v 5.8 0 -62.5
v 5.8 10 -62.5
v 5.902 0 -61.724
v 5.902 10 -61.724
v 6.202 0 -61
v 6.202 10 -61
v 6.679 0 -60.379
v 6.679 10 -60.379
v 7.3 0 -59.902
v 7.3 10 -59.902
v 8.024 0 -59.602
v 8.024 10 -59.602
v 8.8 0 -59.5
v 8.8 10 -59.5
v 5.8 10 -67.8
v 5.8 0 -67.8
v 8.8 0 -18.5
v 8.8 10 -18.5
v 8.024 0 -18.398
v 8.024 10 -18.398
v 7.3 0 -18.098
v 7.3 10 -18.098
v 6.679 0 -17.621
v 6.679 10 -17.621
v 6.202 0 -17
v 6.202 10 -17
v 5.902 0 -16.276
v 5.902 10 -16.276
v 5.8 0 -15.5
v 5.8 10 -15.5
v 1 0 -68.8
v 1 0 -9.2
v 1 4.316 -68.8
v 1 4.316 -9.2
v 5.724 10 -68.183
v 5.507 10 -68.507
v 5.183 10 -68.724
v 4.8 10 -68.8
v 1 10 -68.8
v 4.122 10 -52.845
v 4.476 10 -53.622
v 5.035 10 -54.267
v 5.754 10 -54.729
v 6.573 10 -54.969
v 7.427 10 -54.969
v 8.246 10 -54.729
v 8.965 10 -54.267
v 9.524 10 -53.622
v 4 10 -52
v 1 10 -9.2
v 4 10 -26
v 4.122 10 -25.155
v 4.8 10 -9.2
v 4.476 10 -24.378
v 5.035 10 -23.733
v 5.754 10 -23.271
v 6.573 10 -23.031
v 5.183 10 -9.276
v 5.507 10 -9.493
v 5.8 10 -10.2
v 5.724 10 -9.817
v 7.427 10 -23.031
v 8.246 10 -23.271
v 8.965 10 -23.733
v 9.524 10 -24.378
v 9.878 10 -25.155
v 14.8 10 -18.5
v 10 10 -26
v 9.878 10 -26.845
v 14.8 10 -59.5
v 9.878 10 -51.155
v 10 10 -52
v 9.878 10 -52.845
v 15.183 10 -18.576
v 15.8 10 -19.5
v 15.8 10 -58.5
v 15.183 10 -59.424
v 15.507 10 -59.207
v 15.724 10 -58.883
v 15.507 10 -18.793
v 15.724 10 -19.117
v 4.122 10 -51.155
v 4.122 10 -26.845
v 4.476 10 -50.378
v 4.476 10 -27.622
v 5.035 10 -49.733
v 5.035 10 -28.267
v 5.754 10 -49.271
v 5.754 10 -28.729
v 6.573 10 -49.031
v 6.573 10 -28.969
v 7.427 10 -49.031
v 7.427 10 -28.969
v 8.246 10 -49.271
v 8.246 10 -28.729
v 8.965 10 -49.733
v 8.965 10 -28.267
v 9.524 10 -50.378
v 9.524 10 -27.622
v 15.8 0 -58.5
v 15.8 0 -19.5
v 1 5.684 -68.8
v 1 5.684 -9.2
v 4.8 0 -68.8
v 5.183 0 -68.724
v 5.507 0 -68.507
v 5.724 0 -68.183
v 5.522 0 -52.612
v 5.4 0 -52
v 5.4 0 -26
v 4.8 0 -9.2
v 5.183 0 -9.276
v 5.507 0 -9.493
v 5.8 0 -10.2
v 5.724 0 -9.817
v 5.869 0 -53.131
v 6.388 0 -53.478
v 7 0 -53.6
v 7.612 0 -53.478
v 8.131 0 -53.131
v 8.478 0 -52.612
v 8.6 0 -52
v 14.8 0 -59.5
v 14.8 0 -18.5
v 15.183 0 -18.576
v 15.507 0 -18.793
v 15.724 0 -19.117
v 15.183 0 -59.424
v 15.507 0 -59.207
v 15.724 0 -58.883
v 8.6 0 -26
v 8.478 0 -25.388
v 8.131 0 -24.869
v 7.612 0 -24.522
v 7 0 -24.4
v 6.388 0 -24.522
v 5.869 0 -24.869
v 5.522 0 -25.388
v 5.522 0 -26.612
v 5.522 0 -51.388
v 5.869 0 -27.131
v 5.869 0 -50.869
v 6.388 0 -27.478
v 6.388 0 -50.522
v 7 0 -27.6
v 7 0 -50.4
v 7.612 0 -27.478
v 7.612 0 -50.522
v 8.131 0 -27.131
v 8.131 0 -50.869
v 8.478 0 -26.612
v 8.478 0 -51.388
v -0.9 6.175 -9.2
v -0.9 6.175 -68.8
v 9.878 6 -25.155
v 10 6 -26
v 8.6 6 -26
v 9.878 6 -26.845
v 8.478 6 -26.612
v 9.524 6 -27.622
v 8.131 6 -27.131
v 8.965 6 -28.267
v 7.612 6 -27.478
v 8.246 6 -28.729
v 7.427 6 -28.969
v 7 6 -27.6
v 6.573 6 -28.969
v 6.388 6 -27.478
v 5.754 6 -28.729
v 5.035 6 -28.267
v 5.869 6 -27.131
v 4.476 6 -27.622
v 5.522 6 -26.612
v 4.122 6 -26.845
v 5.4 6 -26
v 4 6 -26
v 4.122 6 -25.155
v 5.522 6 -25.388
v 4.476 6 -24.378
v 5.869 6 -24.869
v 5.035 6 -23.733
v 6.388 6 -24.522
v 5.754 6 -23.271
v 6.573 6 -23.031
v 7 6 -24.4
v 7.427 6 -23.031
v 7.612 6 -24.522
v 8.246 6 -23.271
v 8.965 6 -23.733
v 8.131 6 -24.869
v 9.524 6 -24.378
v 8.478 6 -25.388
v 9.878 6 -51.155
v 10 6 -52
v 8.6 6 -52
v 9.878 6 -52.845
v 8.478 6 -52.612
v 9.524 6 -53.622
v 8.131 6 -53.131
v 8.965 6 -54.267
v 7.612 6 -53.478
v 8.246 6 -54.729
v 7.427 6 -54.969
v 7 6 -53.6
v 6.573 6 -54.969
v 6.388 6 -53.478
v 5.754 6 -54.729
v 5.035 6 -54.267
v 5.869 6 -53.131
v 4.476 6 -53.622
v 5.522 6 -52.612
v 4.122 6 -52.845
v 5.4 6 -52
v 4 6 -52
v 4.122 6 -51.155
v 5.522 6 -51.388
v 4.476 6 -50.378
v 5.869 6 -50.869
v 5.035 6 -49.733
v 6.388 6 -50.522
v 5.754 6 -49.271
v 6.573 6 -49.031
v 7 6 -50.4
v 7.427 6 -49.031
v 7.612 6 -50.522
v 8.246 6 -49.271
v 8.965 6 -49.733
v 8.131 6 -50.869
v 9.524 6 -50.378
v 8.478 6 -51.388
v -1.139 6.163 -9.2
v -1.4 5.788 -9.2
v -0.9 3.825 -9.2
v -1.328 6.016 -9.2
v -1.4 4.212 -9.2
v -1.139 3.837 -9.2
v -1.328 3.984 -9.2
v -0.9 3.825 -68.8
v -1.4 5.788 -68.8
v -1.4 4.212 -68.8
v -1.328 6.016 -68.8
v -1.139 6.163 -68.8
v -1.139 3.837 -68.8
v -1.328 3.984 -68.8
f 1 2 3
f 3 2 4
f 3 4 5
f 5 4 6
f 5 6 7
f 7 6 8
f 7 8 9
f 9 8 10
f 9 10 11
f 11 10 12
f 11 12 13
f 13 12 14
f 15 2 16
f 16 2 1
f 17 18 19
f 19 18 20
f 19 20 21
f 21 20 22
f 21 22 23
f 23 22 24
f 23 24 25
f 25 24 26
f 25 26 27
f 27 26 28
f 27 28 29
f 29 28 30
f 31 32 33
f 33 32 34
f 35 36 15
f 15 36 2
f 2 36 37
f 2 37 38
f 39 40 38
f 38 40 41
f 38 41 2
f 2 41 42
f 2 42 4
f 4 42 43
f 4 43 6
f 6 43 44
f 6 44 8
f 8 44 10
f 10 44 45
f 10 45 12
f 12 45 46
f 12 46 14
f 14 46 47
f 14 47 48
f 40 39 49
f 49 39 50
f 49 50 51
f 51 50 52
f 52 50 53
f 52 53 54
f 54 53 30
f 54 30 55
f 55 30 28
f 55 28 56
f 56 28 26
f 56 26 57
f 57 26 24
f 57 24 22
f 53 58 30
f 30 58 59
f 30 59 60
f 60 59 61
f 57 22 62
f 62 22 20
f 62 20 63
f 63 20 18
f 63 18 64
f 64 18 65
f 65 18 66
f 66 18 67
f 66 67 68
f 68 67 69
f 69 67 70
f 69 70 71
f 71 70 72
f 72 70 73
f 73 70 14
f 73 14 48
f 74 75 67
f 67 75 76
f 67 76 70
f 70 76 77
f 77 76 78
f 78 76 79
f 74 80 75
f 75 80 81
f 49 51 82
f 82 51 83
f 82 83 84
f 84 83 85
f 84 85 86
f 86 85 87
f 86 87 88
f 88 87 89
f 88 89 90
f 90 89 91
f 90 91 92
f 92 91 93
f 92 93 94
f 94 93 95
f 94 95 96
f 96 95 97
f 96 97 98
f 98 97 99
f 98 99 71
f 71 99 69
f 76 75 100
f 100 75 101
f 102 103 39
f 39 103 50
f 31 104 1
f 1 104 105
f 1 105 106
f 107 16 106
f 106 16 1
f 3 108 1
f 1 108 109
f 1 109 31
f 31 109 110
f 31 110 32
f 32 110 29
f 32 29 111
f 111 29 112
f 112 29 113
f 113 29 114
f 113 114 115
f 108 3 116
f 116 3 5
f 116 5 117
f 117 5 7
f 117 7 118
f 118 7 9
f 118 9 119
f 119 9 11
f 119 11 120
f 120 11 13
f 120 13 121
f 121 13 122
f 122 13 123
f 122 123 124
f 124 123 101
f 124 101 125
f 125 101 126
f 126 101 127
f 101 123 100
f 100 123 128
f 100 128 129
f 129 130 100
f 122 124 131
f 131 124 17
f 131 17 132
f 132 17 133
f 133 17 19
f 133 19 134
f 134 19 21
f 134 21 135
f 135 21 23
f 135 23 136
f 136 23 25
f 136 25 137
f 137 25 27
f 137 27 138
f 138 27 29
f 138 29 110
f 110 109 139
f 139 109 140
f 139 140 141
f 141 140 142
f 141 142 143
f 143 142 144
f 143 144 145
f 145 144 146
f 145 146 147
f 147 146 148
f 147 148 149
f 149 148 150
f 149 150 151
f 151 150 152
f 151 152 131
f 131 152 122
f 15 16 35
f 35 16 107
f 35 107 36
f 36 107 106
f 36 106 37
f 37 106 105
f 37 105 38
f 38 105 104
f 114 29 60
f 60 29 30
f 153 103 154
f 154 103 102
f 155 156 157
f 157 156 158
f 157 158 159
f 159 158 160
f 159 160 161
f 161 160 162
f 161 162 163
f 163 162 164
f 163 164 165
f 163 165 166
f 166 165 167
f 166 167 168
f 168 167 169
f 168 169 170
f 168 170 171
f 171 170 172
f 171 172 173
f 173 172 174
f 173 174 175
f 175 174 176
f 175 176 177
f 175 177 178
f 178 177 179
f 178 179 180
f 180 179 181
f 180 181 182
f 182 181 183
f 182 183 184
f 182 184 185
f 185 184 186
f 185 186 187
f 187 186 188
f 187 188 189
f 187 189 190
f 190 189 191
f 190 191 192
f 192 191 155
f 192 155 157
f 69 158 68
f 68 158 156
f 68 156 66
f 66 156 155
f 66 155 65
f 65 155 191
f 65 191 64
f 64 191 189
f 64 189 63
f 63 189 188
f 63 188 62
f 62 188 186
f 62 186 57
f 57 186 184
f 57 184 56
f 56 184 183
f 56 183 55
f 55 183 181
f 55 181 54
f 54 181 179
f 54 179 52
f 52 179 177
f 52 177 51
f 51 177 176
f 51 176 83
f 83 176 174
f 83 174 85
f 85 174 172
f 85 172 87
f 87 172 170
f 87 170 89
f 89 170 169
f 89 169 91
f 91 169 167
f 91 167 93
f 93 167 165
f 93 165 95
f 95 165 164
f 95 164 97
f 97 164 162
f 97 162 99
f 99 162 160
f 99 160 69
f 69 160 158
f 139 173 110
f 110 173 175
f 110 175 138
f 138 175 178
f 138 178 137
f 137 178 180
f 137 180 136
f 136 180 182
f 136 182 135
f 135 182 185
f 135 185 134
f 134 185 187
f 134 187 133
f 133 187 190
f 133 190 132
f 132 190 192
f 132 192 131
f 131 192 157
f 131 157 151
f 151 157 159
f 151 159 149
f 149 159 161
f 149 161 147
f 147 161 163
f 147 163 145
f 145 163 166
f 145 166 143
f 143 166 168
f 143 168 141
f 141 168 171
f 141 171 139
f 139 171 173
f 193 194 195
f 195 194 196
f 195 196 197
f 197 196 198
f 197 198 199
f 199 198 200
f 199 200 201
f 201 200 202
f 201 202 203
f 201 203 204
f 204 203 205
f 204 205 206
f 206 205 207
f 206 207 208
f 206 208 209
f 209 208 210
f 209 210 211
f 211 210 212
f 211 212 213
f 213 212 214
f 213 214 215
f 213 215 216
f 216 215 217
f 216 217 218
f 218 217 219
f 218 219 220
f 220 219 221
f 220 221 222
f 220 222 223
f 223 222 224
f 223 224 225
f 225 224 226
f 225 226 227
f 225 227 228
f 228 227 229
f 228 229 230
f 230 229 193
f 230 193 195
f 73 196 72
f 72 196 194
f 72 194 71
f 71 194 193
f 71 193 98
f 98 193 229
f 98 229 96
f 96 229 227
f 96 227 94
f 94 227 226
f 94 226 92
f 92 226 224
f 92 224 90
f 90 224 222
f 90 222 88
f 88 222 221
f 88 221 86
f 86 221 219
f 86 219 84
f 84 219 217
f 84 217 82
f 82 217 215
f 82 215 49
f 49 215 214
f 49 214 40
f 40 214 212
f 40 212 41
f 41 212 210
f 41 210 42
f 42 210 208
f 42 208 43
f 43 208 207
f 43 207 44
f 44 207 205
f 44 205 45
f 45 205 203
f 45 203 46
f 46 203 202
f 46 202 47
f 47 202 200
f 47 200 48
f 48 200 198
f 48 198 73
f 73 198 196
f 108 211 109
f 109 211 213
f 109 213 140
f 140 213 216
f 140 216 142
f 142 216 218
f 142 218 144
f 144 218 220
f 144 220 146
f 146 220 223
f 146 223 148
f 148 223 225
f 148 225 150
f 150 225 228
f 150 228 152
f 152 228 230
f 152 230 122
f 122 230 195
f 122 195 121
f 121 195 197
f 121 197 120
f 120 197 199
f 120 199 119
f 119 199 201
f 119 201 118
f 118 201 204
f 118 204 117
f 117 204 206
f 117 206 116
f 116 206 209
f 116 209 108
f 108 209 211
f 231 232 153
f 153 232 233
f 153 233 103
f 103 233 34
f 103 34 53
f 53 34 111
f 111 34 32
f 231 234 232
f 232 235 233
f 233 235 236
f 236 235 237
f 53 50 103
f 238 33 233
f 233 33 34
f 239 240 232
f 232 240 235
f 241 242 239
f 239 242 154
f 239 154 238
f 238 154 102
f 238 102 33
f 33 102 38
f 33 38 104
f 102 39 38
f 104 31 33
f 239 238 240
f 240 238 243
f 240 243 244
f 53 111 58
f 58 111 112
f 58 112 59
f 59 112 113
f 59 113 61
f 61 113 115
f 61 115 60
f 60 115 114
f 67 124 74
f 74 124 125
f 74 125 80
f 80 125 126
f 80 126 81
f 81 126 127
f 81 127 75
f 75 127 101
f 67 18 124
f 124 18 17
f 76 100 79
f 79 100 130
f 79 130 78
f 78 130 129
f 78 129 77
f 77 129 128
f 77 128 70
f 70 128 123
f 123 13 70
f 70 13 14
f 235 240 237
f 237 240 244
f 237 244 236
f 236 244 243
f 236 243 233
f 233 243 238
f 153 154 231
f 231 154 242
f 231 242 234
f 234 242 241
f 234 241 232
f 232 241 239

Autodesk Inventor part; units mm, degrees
ref_plane "YZ Plane" through (0, 0, 0) normal (1, 0, 0) x (0, 1, 0)
ref_plane "XZ Plane" through (0, 0, 0) normal (0, 1, 0) x (-1, 0, 0)
ref_plane "XY Plane" through (0, 0, 0) normal (0, 0, 1) x (1, 0, 0)
sketch "Szkic1" plane through (0, 0, 0) normal (0, 1, 0) x (-1, 0, 0)
  line L0 (-1, -9) -> (-6, -9)
  line L1 (-6, -9) -> (-6, -69)
  line L2 (-6, -69) -> (-1, -69)
  line L3 (-1, -69) -> (-1, -9)
  point P0 (0, 0)
  dimension "d0" = 5
  dimension "d1" = 60
extrude "Wyciągnięcie proste1" add sketch "Szkic1" along normal blind 10
sketch "Szkic2" plane through (1, 0, -9) normal (0, 0, 1) x (1, 0, 0)
  line L0 (0, 0) -> (5, 0) projected
  line L1 (5, 0) -> (5, 10) projected
  line L2 (0, 10) -> (5, 10) projected
  line L3 (0, 0) -> (0, 10) projected
  line L4 (-2.9, 6.95) -> (-2.9, 3.05)
  line L5 (0, 6.2) -> (0, 3.8)
  line L6 (-2.9, 6.95) -> (0, 6.2)
  line L7 (0, 3.8) -> (-2.9, 3.05)
  point P0 (-1, 0)
  point P1 (-2.9, 5)
  point P2 (0, 5)
  point P3 (0, 5)
  point P4 (0, 5)
  dimension "d7" = 3.9
  dimension "d8" = 2.4
  dimension "d9" = 2.9
extrude "Wyciągnięcie proste2" add sketch "Szkic2" against normal up to surface (60 mm away) contours L7 L4 L6 L3
sketch "Szkic3" plane through (0, 10, 0) normal (0, 1, 0) x (1, 0, 0)
  line L0 (16, 18.3) -> (6, 18.3)
  line L1 (6, 18.3) -> (6, 59.7)
  line L2 (6, 59.7) -> (16, 59.7)
  line L3 (16, 59.7) -> (16, 18.3)
  line L4 (6, 9) -> (6, 69) projected
  point P0 (0, 0)
  point P1 (6, 39)
  point P2 (6, 39)
  point P3 (6, 39)
  dimension "d12" = 41.4
  dimension "d13" = 10
extrude "Wyciągnięcie proste3" add sketch "Szkic3" against normal blind 10
sketch "Szkic4" plane through (0, 10, 0) normal (0, 1, 0) x (1, 0, 0)
  line L0 (6, 9) -> (6, 18.3) projected
  line L1 (6, 18.3) -> (16, 18.3) projected
  line L2 (16, 18.3) -> (16, 59.7) projected
  line L3 (16, 59.7) -> (6, 59.7) projected
  line L4 (6, 59.7) -> (6, 69) projected
  line L5 (6, 69) -> (1, 69) projected
  line L6 (1, 69) -> (1, 9) projected
  line L7 (1, 9) -> (6, 9) projected
  line L8 (7, 26) -> (7, 52)
  point P0 (0, 0)
  point P1 (7, 39)
  point P2 (1, 39)
  dimension "d16" = 6
  dimension "d17" = 6
  dimension "d18" = 26
hole "Otwór1" at (7, 10, -26) at (7, 10, -52) direction (0, -1, 0) diameter 3.2 end through all counterbore diameter 6 counterbore depth 4
sketch "Szkic5" plane through (0, 10, 0) normal (0, 1, 0) x (1, 0, 0)
  line L0 (1, 69) -> (-1.9, 69) projected
  line L1 (6, 69) -> (1, 69) projected
  line L2 (16, 59.7) -> (6, 59.7) projected
  line L3 (6, 59.7) -> (6, 69) projected
  line L4 (16, 18.3) -> (16, 59.7) projected
  line L5 (6, 18.3) -> (16, 18.3) projected
  line L6 (1, 9) -> (6, 9) projected
  line L7 (1, 9) -> (-1.9, 9) projected
  line L8 (6, 9) -> (6, 18.3) projected
  line L9 (-1.9, 68.8) -> (1, 68.8)
  line L10 (1, 68.8) -> (5.8, 68.8)
  line L11 (5.8, 68.8) -> (5.8, 59.5)
  line L12 (5.8, 59.5) -> (15.8, 59.5)
  line L13 (15.8, 59.5) -> (15.8, 18.5)
  line L14 (15.8, 18.5) -> (5.8, 18.5)
  line L15 (5.8, 18.5) -> (5.8, 9.2)
  line L16 (5.8, 9.2) -> (1, 9.2)
  line L17 (1, 9.2) -> (-1.9, 9.2)
  line L18 (-1.9, 9) -> (-1.9, 9.2)
  line L19 (-1.9, 68.8) -> (-1.9, 69)
  point P0 (0, 0)
  dimension "d26" = 0.2
extrude "Wyciągnięcie proste4" cut sketch "Szkic5" against normal through all
fillet "Zaokrąglenie1" radius 3 2 edges at (5.8, 5, -18.5) (5.8, 5, -59.5)
fillet "Zaokrąglenie3" radius 1 4 edges at (15.8, 5, -18.5) (15.8, 5, -59.5) (5.8, 5, -9.2) (5.8, 5, -68.8)
sketch "Szkic6" plane through (-1.9, 3.05, -9.2) normal (0, 0, 1) x (1, 0, 0)
  line L0 (6.7, 6.95) -> (6.7, -3.05) projected
  line L1 (2.9, 6.95) -> (6.7, 6.95) projected
  line L2 (2.9, 3.15) -> (2.9, 6.95) projected
  line L3 (0, 3.9) -> (2.9, 3.15) projected
  line L4 (0, 0) -> (0, 3.9) projected
  line L5 (2.9, 0.75) -> (0, 0) projected
  line L6 (2.9, -3.05) -> (2.9, 0.75) projected
  line L7 (6.7, -3.05) -> (2.9, -3.05) projected
  line L8 (0.5, 3.2542) -> (3.4, 2.5042)
  line L9 (3.4, 2.5042) -> (3.4, 6.45)
  line L10 (3.4, 6.45) -> (6.2, 6.45)
  line L11 (6.2, 6.45) -> (6.2, -2.55)
  line L12 (6.2, -2.55) -> (3.4, -2.55)
  line L13 (3.4, -2.55) -> (3.4, 1.3958)
  line L14 (3.4, 1.3958) -> (0.5, 0.6458)
  line L15 (0.5, 0.6458) -> (0.5, 3.2542)
  line L16 (2.9, 3.15) -> (2.9, 2.6335)
  line L17 (2.9, 0.75) -> (2.9, -3.05) projected
  line L18 (2.9, 0.75) -> (2.9, 1.2665)
  point P0 (1.9, -3.05)
  dimension "d32" = 0.5
extrude "Wyciągnięcie proste5" cut sketch "Szkic6" against normal through all contours L16 L8 L15 L14 L18 L5 L4 L3
fillet "Zaokrąglenie4" radius 0.4 2 edges at (-1.4, 3.6958, -39) (-1.4, 6.3042, -39)
properties part number "tyl"
